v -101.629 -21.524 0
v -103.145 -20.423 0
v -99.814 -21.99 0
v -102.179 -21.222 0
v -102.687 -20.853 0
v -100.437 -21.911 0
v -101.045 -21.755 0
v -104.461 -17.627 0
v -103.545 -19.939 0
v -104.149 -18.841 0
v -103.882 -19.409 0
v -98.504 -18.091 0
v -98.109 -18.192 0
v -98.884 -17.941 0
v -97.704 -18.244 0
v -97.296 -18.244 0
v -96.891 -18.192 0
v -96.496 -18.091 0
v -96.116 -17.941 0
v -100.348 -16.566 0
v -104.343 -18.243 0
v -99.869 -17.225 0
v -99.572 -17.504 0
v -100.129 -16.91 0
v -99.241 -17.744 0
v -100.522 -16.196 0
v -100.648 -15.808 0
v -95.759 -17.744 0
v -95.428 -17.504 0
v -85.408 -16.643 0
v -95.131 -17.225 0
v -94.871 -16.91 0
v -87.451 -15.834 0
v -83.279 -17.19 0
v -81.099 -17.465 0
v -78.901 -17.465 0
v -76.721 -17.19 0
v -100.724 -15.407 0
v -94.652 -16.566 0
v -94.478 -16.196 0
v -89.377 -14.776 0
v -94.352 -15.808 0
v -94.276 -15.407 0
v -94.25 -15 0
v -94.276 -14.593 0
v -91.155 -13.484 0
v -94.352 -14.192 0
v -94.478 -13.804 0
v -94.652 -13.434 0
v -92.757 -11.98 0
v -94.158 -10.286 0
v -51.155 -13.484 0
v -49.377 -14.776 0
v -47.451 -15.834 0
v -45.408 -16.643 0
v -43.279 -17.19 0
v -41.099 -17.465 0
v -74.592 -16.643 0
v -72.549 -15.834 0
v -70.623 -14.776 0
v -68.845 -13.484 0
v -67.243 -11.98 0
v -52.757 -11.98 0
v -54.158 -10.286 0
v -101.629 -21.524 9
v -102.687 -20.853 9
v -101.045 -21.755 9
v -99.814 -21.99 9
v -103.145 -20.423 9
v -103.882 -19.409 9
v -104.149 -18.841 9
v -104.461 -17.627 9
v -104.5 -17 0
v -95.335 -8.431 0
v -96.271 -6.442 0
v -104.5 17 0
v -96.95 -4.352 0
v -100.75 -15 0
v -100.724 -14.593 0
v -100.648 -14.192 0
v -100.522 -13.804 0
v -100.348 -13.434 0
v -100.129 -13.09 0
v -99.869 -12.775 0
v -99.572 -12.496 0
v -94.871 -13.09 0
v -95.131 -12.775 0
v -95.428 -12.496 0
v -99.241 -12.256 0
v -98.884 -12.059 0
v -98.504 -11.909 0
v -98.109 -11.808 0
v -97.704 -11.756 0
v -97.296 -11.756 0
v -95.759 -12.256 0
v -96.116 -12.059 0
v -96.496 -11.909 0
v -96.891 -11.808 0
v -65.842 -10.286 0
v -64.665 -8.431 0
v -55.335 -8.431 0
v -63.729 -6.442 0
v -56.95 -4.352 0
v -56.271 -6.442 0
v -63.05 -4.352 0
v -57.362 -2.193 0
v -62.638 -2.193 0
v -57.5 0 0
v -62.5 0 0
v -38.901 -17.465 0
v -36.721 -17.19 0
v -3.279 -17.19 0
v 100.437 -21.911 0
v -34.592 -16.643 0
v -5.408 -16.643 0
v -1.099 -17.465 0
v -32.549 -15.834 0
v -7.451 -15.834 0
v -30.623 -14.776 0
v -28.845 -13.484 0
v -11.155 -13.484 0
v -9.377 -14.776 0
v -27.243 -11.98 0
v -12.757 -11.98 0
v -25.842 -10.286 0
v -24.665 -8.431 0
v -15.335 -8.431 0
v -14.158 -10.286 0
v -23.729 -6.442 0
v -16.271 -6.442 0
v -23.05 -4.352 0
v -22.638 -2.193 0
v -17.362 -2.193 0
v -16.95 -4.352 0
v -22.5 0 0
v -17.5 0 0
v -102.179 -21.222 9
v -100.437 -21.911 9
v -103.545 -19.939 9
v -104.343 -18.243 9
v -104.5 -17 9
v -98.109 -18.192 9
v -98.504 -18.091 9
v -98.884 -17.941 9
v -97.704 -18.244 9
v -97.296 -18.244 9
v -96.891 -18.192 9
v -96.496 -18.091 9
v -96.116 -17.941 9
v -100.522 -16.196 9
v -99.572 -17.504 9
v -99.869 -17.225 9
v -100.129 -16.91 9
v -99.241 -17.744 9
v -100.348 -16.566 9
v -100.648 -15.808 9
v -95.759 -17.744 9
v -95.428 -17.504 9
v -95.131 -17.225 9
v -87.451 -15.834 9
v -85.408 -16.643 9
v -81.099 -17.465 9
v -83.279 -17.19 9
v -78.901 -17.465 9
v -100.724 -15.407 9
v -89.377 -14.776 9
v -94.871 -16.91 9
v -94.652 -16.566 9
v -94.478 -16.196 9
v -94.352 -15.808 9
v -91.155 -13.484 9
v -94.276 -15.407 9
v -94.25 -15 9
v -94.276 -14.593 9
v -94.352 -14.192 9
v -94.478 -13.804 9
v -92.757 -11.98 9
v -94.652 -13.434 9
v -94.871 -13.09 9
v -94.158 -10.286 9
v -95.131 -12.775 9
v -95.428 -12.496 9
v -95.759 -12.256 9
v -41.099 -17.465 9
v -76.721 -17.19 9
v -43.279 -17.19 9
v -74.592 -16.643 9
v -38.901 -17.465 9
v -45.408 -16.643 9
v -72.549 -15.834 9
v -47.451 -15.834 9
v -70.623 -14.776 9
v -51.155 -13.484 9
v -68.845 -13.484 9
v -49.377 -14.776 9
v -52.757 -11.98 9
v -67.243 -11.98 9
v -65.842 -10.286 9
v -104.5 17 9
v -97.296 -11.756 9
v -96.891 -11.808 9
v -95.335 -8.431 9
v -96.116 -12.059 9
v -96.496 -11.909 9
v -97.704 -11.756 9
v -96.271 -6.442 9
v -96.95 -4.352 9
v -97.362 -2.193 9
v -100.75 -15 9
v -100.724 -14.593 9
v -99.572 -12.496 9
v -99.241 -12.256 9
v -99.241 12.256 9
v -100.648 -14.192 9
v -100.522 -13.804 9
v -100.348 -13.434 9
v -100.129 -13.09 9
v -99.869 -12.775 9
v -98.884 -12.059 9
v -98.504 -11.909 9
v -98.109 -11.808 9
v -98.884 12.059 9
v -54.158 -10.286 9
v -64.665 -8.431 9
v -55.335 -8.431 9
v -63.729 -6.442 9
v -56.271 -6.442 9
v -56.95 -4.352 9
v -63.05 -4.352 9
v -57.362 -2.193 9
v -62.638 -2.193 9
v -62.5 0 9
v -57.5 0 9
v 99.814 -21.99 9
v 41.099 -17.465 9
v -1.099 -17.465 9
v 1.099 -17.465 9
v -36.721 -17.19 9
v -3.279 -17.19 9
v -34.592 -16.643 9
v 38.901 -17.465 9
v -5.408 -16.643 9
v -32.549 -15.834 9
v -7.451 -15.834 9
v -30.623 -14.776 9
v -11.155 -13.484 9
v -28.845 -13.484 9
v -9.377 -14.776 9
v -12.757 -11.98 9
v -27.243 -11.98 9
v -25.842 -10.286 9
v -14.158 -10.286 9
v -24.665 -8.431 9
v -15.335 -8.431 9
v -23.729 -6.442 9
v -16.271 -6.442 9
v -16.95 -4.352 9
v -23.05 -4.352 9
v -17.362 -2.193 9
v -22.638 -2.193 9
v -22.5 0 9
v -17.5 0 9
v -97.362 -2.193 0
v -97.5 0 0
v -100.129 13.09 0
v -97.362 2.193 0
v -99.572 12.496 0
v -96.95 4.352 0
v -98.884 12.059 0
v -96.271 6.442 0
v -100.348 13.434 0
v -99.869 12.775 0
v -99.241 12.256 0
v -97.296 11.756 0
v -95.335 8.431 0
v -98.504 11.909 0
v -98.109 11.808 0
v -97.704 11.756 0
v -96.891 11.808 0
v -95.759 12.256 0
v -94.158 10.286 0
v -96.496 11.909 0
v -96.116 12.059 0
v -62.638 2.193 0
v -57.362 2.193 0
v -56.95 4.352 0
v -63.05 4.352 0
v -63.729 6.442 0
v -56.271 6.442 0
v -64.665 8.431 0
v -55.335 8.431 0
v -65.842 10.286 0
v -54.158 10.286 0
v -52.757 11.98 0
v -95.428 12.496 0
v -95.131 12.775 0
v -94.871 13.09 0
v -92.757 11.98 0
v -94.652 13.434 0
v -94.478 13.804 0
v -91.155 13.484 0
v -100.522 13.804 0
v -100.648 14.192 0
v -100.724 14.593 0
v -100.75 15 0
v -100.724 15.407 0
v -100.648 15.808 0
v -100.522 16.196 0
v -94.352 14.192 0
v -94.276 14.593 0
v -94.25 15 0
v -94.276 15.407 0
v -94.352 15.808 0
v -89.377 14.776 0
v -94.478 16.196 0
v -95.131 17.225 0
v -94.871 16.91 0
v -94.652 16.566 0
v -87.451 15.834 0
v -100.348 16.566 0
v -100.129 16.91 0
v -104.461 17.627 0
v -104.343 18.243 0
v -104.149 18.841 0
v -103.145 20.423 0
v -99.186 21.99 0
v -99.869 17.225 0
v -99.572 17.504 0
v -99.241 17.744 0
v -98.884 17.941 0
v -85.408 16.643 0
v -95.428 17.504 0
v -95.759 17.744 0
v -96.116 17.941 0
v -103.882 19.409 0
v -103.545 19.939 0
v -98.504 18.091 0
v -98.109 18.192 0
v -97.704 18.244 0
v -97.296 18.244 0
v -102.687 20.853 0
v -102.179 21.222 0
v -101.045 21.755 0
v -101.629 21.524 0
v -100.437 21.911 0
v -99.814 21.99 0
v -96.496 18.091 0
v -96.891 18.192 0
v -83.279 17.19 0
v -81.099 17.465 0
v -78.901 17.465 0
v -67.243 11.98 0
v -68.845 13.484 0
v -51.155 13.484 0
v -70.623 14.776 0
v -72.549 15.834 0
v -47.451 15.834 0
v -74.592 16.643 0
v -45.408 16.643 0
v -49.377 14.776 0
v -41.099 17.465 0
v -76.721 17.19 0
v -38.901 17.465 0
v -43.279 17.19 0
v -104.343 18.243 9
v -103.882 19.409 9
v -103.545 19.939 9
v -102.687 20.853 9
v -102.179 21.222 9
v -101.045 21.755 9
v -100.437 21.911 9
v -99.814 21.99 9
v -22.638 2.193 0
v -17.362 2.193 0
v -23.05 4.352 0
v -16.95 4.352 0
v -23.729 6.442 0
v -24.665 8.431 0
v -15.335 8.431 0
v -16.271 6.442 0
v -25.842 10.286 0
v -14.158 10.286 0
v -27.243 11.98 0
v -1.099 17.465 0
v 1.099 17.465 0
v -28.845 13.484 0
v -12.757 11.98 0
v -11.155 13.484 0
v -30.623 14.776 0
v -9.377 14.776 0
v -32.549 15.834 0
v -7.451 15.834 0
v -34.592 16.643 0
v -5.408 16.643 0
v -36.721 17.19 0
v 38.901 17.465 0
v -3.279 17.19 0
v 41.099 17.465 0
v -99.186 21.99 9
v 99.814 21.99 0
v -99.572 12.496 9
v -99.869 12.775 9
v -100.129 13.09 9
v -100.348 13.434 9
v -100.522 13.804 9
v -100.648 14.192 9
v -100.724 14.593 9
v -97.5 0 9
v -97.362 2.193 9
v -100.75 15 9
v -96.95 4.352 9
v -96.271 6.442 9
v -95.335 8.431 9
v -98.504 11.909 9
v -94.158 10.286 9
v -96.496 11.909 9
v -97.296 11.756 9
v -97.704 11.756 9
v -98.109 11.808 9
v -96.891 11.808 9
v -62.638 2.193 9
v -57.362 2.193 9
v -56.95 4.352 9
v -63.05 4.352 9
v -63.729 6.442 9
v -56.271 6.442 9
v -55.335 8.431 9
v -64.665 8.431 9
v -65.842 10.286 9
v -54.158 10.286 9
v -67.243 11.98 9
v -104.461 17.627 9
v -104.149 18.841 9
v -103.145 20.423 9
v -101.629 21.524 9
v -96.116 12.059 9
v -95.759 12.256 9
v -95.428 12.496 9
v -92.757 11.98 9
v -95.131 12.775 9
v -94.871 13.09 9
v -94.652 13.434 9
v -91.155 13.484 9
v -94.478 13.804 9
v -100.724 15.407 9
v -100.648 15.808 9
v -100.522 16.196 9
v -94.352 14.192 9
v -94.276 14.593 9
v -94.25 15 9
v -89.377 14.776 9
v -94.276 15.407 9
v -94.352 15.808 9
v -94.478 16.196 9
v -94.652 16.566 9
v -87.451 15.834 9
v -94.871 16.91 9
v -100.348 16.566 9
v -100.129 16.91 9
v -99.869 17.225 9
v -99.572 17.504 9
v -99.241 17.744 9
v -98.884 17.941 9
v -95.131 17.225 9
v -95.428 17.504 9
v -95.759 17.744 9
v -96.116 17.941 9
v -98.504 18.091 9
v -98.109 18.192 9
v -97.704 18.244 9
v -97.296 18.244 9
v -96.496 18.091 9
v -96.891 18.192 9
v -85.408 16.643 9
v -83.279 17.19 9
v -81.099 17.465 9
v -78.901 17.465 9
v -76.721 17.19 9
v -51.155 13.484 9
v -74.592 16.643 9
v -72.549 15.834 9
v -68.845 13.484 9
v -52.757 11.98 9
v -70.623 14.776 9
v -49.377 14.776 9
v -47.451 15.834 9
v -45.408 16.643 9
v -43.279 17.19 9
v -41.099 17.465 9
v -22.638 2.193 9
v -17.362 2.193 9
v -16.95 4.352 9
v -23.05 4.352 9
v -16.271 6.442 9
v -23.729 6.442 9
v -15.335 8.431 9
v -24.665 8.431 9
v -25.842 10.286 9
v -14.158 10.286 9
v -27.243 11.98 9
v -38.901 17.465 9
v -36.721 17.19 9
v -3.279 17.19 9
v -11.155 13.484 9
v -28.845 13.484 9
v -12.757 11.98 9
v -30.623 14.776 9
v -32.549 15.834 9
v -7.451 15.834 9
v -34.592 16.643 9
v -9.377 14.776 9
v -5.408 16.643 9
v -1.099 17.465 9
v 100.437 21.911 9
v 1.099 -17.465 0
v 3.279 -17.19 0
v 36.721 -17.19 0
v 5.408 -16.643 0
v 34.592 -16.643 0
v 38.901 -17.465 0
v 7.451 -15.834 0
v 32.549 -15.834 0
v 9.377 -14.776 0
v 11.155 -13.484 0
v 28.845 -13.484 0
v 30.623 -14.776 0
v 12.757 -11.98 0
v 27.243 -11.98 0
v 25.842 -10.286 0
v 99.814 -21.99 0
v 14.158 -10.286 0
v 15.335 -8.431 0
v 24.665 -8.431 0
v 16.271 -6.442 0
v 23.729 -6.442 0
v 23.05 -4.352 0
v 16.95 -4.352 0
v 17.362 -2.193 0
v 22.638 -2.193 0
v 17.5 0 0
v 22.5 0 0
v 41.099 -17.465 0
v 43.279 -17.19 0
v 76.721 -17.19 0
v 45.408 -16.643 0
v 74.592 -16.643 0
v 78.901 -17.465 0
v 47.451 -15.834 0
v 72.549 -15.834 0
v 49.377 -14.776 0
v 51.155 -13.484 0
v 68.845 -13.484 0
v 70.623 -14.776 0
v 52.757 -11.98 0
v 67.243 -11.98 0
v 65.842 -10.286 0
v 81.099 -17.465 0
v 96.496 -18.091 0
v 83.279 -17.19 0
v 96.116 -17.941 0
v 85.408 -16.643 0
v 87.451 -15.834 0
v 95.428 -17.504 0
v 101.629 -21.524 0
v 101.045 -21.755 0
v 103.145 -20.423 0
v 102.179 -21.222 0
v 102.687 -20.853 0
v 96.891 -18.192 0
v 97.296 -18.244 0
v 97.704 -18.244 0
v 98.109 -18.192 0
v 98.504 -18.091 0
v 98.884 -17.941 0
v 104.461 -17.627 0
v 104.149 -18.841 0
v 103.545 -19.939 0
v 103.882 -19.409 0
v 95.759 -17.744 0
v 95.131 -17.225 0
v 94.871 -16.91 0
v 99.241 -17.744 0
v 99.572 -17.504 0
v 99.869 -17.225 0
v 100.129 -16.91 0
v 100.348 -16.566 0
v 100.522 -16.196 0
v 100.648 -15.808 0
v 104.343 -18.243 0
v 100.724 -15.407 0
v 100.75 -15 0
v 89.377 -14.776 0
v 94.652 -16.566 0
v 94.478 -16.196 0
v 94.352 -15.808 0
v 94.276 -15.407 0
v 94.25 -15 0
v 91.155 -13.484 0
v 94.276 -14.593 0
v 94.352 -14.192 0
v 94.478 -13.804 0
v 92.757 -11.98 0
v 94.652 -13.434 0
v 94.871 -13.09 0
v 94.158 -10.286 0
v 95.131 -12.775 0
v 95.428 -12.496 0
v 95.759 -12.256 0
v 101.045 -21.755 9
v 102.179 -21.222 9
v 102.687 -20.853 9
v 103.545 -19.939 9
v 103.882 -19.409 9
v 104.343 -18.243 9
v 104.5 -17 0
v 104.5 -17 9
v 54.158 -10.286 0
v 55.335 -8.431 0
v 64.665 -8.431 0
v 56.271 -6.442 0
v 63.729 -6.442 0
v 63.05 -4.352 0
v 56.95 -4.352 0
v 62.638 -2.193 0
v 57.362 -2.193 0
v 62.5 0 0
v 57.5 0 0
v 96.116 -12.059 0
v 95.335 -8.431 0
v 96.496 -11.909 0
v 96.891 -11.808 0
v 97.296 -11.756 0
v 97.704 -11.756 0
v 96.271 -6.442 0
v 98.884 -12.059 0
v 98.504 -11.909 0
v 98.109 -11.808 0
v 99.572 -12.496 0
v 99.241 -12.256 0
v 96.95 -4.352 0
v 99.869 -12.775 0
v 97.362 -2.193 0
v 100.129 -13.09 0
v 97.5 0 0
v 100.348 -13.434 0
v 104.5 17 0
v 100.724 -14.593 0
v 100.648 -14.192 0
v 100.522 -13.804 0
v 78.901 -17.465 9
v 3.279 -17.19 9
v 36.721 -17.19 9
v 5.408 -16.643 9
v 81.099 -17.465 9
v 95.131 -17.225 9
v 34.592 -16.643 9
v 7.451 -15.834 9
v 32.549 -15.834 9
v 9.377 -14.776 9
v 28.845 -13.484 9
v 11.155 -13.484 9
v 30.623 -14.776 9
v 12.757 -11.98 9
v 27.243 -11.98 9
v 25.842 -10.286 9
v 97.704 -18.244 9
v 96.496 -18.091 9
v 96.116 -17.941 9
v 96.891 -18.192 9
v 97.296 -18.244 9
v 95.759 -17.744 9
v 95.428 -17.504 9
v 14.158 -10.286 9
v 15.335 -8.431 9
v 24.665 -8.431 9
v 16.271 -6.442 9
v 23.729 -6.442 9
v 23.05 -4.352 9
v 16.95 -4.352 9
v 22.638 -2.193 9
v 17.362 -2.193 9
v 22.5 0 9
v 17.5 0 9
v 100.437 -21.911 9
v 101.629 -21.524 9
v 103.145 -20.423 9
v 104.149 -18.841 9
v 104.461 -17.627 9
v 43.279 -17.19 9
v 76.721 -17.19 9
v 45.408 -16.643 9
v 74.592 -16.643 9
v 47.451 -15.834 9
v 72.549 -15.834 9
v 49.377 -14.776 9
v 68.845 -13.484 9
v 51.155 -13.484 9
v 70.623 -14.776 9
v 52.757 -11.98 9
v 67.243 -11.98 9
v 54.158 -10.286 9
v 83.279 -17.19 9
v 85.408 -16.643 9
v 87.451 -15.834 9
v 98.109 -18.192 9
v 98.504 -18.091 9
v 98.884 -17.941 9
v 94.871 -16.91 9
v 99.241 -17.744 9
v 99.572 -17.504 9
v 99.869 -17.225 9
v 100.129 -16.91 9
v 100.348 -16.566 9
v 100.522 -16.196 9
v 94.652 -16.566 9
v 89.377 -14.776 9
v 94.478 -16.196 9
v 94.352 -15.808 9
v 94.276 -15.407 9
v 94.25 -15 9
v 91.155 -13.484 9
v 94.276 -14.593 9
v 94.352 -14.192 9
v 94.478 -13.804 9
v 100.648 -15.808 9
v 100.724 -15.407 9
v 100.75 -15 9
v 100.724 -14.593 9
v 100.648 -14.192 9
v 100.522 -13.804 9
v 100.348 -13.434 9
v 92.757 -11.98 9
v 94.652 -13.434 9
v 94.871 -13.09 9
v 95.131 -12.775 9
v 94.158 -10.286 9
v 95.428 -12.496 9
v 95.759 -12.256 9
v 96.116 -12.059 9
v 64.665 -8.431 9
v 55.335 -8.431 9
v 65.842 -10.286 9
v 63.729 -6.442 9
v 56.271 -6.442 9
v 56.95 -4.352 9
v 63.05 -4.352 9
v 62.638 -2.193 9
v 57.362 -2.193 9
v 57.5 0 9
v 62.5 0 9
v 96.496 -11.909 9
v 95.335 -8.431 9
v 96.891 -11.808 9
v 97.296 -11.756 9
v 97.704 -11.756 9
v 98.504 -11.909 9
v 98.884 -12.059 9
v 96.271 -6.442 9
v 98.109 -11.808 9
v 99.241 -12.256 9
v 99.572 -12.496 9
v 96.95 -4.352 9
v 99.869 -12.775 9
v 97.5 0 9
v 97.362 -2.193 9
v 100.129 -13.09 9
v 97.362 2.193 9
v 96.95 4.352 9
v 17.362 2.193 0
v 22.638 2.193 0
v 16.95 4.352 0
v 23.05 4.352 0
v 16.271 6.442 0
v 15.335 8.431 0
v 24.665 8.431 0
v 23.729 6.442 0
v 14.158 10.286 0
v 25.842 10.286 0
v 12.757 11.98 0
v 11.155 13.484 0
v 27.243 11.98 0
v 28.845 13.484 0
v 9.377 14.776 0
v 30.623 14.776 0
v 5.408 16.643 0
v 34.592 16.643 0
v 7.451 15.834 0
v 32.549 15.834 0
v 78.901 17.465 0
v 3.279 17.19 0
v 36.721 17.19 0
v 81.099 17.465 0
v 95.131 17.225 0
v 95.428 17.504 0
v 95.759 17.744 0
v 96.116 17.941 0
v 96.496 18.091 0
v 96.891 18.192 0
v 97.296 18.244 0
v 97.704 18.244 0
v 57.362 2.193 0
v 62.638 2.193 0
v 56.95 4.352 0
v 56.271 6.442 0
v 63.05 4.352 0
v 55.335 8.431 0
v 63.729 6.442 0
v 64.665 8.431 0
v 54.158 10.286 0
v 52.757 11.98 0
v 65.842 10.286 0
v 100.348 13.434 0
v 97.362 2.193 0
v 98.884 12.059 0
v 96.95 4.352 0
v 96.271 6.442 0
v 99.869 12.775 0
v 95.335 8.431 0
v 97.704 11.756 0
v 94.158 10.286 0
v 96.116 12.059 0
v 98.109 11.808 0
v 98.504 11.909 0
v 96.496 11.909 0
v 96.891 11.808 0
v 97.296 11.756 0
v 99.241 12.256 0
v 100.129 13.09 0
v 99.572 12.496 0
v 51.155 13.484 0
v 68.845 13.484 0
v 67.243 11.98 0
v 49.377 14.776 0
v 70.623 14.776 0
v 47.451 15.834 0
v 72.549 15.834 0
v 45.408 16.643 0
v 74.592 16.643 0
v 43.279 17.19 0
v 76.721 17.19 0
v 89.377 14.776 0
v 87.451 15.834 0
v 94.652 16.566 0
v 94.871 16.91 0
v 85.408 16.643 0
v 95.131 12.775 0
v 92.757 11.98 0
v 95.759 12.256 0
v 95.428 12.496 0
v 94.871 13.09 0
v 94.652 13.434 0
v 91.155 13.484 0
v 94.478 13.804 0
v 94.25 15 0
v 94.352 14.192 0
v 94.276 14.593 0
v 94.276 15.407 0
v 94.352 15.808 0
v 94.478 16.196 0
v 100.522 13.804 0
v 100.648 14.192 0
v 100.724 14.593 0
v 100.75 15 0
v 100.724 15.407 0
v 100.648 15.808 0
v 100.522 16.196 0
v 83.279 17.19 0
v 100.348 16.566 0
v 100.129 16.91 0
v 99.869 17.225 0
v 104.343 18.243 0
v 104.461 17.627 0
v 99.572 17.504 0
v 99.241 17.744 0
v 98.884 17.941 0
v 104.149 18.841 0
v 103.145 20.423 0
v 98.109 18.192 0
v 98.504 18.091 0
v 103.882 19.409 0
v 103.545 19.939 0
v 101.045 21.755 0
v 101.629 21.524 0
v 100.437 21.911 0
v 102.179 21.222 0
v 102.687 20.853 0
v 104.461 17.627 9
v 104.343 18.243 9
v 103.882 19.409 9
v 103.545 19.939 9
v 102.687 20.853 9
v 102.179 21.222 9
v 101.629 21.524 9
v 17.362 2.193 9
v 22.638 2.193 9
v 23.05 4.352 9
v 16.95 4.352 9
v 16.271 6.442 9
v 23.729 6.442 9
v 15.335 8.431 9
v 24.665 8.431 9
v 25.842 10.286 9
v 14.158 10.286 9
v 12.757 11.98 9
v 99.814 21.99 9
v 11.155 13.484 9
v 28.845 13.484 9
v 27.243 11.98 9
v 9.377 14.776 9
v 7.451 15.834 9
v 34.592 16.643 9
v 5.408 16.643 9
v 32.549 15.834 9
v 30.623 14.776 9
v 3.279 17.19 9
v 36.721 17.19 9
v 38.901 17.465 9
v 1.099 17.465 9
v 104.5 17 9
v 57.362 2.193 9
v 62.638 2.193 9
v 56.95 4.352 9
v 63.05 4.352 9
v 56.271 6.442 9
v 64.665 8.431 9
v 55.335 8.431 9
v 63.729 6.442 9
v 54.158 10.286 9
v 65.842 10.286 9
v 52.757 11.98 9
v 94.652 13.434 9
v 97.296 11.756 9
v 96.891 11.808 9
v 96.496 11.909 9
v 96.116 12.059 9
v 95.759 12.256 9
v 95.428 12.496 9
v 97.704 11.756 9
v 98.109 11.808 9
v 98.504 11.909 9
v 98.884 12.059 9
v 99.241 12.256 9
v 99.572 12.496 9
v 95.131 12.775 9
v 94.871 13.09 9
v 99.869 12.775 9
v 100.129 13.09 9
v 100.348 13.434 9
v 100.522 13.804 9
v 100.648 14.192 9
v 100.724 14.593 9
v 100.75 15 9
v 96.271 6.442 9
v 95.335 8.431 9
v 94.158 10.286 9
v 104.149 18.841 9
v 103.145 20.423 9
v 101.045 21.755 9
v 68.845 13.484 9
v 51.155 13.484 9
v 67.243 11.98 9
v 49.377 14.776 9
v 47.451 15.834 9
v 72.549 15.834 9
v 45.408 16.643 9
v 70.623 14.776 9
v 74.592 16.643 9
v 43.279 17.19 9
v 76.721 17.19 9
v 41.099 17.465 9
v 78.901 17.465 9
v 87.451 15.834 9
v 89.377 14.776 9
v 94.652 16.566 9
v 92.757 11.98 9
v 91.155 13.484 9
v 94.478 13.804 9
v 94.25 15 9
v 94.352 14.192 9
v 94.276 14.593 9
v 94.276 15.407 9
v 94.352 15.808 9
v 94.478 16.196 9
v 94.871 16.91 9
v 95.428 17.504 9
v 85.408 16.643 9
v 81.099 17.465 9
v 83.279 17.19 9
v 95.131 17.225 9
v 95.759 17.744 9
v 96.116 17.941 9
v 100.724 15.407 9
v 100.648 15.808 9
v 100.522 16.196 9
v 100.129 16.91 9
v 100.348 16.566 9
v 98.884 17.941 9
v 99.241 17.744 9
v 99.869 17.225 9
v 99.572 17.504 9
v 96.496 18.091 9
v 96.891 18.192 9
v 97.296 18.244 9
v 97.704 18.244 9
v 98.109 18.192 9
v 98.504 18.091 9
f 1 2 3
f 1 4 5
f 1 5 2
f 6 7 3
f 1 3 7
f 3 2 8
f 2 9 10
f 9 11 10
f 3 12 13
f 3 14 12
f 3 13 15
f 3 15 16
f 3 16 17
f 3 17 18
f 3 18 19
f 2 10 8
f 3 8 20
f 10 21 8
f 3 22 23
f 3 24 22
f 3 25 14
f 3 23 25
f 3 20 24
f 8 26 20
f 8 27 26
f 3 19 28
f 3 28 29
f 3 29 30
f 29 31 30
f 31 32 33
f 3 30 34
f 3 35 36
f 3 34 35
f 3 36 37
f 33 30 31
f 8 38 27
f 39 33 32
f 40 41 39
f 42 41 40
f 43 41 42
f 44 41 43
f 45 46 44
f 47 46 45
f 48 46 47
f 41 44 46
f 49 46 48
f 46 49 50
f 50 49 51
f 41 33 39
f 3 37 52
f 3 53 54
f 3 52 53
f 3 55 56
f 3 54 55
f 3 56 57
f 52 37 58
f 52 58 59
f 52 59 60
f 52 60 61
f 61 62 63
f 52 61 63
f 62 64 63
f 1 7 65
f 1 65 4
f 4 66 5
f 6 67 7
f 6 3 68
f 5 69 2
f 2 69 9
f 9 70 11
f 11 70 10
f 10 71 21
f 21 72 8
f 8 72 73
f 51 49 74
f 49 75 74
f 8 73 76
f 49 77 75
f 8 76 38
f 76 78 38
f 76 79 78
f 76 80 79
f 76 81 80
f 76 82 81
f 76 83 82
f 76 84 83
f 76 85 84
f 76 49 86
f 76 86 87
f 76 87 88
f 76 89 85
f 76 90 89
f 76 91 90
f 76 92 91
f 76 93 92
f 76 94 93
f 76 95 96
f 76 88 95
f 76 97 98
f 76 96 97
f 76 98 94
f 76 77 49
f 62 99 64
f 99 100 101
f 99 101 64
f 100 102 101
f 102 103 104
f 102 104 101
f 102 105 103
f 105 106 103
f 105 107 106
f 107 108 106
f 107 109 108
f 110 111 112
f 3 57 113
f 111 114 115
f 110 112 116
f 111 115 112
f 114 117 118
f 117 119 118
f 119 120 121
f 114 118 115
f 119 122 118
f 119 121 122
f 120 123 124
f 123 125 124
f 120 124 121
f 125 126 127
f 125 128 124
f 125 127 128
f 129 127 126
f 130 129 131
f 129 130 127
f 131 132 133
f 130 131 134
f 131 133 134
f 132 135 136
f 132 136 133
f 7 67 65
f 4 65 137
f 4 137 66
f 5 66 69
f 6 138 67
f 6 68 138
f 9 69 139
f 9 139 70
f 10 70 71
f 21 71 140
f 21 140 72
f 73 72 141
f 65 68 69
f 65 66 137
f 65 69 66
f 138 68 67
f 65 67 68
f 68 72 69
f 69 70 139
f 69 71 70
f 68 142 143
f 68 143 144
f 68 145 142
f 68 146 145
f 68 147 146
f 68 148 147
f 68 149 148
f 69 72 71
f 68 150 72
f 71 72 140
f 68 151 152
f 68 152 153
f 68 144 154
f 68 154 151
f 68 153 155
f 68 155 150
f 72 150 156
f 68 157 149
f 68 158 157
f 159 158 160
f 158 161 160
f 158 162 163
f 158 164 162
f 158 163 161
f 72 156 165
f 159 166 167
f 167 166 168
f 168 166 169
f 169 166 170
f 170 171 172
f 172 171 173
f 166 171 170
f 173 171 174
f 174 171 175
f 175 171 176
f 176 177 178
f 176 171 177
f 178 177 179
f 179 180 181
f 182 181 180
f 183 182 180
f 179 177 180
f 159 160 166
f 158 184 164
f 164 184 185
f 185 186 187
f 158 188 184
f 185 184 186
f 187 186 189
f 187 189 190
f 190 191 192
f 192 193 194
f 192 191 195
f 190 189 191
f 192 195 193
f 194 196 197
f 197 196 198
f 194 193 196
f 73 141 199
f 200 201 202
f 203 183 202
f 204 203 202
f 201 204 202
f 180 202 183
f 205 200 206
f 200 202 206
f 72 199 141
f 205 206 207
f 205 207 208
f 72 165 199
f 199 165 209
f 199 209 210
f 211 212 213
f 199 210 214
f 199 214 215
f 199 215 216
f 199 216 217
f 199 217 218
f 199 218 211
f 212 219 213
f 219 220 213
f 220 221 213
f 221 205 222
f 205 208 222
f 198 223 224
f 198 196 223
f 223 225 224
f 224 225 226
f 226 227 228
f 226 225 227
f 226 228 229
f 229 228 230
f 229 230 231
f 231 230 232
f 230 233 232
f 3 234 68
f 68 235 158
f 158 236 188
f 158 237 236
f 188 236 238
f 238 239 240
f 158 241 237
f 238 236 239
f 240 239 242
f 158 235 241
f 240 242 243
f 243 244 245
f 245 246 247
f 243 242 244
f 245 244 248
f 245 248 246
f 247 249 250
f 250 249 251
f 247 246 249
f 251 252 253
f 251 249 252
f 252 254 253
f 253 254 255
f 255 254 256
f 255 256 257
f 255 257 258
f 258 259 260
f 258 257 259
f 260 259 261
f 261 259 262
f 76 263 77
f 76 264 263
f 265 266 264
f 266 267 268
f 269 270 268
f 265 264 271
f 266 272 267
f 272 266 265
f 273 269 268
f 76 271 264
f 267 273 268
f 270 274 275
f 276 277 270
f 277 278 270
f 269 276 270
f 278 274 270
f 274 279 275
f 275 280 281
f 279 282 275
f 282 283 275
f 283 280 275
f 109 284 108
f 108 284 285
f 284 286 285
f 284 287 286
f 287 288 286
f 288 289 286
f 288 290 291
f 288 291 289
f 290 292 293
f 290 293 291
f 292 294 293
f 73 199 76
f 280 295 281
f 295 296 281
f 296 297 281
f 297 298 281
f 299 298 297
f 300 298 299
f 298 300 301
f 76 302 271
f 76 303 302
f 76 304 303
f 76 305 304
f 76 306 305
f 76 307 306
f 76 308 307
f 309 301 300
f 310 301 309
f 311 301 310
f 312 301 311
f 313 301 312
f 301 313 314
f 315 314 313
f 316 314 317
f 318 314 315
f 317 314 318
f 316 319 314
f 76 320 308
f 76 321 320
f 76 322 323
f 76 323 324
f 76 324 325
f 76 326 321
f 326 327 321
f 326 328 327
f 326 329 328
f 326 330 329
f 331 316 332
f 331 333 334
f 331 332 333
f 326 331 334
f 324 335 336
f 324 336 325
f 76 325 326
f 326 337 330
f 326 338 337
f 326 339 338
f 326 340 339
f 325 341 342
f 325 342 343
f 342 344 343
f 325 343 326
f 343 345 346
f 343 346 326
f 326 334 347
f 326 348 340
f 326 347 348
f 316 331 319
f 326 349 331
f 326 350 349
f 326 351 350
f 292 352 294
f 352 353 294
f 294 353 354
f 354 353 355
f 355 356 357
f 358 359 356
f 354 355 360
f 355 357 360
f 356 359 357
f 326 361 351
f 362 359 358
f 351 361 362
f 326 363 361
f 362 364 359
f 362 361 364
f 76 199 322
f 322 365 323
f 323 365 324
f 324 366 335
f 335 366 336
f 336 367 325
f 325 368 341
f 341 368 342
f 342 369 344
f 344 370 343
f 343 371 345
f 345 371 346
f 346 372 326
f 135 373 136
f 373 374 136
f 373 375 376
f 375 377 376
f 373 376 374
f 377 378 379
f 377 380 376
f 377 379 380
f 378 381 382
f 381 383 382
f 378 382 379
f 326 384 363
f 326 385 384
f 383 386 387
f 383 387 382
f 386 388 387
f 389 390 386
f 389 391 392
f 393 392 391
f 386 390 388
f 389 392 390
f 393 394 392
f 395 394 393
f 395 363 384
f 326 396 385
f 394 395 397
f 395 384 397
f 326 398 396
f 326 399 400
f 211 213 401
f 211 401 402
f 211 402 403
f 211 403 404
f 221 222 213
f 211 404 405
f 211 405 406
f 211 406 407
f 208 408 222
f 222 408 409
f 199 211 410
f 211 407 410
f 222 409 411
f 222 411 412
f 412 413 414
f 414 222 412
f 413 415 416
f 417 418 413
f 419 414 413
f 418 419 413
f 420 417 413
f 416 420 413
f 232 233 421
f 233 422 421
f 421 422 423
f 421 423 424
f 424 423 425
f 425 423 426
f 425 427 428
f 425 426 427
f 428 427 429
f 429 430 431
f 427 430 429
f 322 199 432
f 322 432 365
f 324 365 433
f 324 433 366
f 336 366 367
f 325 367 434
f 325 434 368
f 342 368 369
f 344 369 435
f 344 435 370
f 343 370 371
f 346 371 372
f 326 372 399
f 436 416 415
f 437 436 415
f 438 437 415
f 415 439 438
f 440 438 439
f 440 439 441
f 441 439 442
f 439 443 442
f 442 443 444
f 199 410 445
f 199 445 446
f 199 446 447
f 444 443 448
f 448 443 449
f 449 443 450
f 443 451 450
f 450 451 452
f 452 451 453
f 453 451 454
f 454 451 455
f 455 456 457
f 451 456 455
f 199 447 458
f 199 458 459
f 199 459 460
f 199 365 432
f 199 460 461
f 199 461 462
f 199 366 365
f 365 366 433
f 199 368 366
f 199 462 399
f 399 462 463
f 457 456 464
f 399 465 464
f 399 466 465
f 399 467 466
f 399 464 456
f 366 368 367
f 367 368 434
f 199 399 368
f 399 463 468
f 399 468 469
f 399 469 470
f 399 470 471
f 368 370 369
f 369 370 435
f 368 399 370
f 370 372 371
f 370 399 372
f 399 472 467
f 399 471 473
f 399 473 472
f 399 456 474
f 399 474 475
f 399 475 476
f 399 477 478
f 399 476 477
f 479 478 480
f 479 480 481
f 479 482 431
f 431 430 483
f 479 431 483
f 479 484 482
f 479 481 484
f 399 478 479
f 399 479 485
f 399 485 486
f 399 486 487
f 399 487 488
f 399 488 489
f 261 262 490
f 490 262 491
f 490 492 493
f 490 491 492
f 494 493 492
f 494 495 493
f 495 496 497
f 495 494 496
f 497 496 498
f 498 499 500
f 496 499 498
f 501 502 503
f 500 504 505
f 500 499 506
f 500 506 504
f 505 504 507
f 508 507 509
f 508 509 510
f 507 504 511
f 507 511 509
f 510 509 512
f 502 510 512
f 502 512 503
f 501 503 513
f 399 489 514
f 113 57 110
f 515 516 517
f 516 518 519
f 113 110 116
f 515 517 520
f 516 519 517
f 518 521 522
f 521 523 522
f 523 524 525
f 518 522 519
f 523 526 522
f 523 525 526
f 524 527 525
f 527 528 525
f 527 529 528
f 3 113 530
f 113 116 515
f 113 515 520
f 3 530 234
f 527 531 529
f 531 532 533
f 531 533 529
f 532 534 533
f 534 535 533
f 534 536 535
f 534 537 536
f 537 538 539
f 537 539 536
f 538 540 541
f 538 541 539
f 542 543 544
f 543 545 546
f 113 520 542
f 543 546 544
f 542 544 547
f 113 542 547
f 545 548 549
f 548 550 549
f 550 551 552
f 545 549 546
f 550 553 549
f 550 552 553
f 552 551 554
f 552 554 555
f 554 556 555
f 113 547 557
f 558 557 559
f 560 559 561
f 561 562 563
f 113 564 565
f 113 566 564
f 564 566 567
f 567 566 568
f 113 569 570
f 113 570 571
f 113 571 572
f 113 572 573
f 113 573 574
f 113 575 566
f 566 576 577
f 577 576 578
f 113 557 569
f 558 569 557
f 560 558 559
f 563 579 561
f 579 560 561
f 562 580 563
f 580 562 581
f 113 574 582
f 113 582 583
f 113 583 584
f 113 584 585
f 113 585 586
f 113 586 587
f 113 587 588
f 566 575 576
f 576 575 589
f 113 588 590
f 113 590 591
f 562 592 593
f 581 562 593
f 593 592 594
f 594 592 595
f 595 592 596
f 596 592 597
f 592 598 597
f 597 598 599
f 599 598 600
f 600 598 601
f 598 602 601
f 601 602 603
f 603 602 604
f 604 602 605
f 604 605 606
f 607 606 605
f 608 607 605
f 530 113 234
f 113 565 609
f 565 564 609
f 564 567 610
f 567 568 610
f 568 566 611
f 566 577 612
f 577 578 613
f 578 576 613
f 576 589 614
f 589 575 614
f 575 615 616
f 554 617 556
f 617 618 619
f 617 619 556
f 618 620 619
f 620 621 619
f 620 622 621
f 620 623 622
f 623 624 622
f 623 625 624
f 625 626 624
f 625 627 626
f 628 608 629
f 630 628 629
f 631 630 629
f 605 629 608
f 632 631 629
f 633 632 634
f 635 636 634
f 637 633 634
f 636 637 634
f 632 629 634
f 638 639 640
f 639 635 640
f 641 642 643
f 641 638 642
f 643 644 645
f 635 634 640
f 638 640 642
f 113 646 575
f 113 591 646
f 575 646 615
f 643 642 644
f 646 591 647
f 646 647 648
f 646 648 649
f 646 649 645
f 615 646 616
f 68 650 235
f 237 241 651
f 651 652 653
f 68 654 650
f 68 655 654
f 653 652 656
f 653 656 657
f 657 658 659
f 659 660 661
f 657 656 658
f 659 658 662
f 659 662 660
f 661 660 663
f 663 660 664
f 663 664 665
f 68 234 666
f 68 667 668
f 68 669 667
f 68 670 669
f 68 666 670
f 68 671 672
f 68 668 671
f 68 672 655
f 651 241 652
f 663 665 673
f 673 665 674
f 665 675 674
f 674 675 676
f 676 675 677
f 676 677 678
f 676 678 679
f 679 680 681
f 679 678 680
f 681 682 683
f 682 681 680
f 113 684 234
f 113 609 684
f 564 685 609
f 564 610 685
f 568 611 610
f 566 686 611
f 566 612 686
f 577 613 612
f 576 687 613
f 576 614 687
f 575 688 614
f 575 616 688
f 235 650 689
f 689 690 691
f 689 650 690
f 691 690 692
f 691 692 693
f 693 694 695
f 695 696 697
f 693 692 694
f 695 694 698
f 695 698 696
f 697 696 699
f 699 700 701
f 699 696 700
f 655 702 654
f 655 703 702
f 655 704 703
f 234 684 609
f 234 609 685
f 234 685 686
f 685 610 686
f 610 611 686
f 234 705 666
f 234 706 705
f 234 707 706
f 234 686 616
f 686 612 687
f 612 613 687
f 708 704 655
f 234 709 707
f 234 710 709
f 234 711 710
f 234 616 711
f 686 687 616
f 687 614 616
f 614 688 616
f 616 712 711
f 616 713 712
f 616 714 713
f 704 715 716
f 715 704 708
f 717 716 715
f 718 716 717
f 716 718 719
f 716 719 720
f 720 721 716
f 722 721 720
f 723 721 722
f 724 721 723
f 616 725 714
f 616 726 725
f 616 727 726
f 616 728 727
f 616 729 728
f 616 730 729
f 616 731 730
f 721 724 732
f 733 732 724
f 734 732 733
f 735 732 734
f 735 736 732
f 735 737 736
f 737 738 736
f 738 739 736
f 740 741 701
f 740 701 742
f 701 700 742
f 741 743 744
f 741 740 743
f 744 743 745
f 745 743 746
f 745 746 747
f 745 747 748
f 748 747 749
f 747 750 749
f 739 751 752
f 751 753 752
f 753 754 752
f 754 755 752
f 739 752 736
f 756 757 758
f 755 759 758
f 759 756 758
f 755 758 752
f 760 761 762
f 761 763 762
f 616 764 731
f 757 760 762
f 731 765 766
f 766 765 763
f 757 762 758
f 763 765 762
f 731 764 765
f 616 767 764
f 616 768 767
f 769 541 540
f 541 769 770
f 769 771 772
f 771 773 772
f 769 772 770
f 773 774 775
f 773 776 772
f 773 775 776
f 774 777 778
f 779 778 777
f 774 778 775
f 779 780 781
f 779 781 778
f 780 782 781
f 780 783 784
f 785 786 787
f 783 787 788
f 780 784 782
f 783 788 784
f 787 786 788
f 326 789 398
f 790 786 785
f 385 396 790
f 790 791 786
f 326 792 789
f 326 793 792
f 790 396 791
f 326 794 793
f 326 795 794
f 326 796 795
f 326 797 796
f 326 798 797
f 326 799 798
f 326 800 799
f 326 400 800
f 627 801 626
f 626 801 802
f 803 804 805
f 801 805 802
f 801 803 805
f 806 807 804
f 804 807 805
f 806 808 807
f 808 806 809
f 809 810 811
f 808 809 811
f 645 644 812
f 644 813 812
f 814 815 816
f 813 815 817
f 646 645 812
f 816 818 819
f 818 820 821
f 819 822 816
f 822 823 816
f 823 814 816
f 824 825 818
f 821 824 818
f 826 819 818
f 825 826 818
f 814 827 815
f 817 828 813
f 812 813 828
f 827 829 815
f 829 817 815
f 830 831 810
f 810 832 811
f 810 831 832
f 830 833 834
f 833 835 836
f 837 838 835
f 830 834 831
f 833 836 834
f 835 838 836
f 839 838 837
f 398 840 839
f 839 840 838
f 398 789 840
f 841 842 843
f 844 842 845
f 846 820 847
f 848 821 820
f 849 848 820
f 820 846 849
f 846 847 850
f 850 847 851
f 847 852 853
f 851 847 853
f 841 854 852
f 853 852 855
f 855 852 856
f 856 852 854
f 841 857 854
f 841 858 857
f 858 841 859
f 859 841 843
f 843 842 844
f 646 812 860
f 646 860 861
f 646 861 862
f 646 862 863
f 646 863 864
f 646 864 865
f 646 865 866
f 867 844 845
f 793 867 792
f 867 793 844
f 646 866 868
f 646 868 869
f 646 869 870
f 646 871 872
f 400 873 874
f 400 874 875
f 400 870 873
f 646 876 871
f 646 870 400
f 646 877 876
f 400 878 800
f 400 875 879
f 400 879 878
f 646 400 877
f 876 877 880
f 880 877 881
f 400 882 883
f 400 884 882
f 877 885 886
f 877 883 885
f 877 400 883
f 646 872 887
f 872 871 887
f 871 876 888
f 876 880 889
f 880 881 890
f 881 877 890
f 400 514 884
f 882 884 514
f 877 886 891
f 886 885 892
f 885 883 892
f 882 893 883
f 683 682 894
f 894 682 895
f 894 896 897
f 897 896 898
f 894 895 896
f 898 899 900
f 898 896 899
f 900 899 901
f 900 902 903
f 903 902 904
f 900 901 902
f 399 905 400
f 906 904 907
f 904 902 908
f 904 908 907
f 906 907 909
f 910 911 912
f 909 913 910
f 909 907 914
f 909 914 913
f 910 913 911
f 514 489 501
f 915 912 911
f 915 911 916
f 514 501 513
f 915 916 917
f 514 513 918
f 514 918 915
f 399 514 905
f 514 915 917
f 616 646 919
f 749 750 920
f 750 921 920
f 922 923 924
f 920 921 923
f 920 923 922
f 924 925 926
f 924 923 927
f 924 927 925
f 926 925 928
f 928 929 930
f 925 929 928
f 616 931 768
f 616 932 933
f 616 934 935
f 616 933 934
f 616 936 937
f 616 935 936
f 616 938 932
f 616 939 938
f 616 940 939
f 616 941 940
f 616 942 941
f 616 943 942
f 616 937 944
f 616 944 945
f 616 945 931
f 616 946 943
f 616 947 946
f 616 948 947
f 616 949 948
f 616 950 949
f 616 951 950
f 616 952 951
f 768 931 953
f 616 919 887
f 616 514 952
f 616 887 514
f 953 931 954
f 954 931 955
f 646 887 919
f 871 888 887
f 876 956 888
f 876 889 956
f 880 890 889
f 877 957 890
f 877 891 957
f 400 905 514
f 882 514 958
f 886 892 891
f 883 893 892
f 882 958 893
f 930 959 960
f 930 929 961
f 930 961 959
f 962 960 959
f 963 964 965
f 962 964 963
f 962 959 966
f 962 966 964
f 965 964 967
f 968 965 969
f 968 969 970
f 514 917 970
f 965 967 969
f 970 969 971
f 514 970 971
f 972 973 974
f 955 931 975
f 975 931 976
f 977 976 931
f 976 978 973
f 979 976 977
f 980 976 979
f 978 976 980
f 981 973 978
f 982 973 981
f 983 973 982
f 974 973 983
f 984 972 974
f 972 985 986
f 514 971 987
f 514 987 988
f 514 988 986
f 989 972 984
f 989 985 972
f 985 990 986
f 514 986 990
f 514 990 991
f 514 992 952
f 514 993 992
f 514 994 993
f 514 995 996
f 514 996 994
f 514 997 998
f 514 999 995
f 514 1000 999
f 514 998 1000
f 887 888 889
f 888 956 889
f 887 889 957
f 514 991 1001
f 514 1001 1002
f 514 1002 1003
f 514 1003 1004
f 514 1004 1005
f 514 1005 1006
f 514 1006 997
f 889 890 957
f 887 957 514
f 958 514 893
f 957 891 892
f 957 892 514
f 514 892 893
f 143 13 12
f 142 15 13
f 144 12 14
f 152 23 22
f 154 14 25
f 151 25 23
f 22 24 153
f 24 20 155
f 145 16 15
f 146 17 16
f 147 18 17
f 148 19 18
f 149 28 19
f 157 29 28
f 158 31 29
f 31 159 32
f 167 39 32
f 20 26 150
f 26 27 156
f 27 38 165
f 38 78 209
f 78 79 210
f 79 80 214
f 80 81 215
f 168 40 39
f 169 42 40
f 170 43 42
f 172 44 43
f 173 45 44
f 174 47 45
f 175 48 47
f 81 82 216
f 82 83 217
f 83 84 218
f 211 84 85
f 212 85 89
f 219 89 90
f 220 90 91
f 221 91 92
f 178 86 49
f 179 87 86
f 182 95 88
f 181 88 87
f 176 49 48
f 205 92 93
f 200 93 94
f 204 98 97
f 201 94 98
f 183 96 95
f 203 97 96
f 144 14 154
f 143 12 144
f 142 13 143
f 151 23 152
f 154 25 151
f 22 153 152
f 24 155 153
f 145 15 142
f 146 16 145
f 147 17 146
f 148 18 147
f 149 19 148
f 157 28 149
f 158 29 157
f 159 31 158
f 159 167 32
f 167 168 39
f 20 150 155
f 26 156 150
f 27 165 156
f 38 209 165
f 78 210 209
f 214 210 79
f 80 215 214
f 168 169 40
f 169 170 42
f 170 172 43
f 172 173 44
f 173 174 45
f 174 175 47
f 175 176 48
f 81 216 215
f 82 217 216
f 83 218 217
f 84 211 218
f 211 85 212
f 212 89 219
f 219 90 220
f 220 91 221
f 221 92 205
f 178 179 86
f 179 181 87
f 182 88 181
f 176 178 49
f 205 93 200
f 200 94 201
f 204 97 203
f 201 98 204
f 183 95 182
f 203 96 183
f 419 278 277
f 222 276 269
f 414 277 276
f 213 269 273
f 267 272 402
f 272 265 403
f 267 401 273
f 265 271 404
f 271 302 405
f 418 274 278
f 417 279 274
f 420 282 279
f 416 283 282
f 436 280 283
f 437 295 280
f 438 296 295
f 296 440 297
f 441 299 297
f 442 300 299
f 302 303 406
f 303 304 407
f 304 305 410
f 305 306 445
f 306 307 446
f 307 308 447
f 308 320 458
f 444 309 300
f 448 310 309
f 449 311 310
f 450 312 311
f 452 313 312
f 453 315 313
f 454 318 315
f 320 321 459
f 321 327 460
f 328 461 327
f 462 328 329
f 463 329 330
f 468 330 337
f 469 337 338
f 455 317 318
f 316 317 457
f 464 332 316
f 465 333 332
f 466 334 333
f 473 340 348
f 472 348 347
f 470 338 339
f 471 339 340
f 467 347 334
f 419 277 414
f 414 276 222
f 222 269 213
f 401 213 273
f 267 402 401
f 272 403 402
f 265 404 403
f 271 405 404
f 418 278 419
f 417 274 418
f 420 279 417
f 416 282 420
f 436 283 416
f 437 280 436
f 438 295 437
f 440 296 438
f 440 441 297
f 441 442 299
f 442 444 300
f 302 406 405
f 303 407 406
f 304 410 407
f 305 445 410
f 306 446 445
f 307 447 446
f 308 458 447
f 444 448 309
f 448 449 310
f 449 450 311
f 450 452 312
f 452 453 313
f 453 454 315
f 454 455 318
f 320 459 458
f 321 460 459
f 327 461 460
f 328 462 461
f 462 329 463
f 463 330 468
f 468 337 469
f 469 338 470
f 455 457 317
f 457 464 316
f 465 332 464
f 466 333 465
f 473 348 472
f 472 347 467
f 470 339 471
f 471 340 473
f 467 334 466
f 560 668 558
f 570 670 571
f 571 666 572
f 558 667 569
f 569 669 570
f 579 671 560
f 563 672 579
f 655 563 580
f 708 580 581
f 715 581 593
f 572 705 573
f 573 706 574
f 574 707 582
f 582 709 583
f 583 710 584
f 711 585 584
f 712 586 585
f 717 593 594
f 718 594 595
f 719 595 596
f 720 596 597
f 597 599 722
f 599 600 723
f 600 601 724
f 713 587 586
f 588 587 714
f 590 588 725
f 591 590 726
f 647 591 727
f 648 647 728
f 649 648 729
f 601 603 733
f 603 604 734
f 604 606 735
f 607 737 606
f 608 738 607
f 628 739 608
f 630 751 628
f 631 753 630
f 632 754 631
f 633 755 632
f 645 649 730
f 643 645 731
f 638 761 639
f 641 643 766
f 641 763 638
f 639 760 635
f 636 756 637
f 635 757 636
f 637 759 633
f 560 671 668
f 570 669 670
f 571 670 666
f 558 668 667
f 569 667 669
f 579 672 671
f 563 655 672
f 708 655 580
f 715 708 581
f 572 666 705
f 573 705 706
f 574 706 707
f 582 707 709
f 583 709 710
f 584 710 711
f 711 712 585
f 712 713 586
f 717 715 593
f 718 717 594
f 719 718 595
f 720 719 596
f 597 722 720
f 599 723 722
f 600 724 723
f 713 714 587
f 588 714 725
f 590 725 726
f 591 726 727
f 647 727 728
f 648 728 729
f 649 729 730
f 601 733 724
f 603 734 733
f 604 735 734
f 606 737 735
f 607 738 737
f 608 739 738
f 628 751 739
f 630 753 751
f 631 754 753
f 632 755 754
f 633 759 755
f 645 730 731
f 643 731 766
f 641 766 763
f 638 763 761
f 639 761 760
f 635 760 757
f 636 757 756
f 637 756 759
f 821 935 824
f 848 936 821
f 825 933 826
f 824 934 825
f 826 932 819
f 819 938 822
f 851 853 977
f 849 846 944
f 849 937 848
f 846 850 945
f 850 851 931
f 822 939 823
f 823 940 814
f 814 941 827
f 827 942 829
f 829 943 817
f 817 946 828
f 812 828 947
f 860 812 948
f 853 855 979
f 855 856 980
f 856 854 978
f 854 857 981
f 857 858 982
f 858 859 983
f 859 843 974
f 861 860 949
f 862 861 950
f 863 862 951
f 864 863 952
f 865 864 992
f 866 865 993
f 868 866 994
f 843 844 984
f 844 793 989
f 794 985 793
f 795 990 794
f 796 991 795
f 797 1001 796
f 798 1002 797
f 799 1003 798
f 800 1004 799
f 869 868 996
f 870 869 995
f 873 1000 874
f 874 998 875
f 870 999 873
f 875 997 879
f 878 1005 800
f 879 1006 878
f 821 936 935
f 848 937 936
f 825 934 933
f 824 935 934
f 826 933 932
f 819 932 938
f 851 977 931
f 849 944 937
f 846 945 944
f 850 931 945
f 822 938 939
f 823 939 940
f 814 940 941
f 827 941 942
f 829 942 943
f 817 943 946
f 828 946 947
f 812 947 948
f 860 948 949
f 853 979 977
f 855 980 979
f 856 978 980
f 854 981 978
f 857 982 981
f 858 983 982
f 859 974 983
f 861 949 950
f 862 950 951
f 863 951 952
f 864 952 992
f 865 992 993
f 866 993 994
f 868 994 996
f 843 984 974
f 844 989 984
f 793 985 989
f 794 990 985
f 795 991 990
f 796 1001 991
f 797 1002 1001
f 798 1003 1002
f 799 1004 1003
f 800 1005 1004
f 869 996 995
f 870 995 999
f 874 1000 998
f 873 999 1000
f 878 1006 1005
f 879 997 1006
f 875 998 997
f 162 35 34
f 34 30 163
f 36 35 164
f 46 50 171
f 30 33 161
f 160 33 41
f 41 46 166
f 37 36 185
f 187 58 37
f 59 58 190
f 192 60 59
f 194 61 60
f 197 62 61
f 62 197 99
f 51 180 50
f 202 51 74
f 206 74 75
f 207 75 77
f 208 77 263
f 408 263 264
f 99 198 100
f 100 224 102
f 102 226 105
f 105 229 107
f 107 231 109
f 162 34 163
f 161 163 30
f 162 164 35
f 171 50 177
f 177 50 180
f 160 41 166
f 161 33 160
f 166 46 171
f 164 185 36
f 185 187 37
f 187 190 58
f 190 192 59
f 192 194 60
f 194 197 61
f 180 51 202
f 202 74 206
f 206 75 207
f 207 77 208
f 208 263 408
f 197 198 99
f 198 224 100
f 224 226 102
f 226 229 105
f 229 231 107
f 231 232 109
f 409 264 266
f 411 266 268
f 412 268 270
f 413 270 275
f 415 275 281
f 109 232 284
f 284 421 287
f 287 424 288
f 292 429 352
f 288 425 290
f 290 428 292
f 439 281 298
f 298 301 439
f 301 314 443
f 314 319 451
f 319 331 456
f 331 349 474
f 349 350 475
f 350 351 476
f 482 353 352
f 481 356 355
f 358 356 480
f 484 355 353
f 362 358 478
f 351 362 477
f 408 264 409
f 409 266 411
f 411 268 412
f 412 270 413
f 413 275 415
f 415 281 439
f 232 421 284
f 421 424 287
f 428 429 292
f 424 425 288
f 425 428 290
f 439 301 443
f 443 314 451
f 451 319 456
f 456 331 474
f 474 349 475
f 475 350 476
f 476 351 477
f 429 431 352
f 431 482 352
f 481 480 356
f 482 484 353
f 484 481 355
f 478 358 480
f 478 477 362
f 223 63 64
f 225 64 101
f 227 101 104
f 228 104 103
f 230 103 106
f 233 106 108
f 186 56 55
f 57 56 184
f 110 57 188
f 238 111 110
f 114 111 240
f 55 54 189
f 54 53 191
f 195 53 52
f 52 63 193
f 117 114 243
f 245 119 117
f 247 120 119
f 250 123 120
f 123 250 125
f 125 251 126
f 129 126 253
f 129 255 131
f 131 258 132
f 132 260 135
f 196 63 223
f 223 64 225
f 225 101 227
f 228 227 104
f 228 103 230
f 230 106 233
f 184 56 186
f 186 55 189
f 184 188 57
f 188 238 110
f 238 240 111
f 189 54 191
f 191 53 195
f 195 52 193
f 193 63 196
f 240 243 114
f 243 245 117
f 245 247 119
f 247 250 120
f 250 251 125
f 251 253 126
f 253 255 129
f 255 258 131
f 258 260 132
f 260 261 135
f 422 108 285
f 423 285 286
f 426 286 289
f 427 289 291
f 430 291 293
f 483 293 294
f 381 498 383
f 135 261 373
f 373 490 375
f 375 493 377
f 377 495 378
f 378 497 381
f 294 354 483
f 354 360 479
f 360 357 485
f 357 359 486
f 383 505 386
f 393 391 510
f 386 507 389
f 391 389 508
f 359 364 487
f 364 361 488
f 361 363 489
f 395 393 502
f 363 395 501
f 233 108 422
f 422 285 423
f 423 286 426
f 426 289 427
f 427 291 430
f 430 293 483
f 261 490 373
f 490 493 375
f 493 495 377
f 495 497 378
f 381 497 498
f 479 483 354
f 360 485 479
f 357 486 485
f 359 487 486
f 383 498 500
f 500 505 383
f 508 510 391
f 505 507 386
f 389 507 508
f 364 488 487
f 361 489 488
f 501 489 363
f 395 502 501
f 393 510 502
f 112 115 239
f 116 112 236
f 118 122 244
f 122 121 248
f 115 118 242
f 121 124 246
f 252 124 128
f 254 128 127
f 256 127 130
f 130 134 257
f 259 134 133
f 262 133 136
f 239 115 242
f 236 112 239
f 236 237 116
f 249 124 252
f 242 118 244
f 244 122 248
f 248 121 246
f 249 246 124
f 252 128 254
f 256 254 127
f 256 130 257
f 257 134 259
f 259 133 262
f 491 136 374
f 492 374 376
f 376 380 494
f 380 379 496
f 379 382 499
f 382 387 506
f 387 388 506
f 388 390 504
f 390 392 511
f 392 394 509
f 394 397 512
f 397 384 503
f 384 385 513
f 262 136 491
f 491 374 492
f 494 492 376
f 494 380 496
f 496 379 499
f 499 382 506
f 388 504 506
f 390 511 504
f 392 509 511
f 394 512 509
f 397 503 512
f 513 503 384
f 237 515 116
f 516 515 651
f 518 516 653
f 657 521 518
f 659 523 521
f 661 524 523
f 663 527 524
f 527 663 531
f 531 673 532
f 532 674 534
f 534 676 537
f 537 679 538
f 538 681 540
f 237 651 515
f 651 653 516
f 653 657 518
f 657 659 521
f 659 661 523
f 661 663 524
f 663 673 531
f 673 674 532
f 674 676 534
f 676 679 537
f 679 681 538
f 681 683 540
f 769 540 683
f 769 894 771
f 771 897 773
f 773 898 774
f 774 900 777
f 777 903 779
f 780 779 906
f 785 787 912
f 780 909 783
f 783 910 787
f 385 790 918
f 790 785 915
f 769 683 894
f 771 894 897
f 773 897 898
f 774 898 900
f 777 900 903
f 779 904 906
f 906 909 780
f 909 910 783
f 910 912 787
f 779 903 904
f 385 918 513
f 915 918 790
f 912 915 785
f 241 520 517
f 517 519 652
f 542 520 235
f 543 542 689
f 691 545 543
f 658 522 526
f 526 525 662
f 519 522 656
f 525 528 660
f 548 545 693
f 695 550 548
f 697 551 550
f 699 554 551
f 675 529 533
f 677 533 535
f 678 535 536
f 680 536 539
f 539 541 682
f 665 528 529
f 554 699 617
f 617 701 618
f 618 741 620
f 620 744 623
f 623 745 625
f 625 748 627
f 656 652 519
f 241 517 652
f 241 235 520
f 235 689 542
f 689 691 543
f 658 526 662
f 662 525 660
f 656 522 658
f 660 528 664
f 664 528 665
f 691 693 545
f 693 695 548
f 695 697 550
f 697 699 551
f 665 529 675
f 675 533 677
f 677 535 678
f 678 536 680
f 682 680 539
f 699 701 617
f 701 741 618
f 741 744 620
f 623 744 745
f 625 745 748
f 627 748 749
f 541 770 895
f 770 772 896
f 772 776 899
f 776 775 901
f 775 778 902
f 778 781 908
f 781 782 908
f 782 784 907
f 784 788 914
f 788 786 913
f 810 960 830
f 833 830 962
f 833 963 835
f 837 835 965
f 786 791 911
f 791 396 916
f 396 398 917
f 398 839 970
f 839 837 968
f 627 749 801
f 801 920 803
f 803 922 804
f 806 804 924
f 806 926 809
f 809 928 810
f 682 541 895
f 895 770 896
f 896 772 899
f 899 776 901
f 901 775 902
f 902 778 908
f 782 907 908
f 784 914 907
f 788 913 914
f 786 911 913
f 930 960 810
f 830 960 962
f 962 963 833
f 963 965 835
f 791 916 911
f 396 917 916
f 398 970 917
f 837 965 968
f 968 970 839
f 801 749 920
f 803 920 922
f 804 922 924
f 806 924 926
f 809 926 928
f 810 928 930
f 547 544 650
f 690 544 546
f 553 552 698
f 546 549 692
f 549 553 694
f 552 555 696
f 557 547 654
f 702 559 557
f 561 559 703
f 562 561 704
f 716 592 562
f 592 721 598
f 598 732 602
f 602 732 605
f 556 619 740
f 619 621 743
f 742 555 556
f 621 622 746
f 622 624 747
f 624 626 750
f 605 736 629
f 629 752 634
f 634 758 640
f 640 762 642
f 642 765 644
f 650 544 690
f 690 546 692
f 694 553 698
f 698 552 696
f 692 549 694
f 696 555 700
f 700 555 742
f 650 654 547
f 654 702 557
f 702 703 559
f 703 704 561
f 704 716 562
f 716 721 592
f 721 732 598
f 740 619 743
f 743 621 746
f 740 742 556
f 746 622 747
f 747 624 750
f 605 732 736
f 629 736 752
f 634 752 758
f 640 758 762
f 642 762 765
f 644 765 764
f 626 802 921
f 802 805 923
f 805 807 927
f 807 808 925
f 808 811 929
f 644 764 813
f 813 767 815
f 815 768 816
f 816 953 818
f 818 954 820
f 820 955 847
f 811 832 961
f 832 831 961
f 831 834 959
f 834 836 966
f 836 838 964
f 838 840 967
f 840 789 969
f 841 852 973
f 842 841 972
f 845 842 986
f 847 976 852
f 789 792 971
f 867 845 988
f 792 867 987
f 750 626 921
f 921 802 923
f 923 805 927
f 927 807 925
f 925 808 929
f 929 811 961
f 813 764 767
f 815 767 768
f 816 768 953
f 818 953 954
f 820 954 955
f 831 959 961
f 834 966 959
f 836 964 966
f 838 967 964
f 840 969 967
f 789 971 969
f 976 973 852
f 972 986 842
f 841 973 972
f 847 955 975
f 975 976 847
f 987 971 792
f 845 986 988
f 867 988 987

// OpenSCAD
$fn = 50;

difference() {
	union() {
		hull() {
			translate(v = [-99.5, 17.0, 0]) {
				cylinder(h = 9, r = 5);
			}
			translate(v = [99.5, 17.0, 0]) {
				cylinder(h = 9, r = 5);
			}
			translate(v = [-99.5, -17.0, 0]) {
				cylinder(h = 9, r = 5);
			}
			translate(v = [99.5, -17.0, 0]) {
				cylinder(h = 9, r = 5);
			}
		}
	}
	union() {
		translate(v = [-97.5, -15.0, -100.0]) {
			cylinder(h = 200, r = 3.25);
		}
		translate(v = [-97.5, 15.0, -100.0]) {
			cylinder(h = 200, r = 3.25);
		}
		translate(v = [97.5, -15.0, -100.0]) {
			cylinder(h = 200, r = 3.25);
		}
		translate(v = [97.5, 15.0, -100.0]) {
			cylinder(h = 200, r = 3.25);
		}
		translate(v = [-97.5, -15.0, -100.0]) {
			cylinder(h = 200, r = 1.8);
		}
		translate(v = [-97.5, 15.0, -100.0]) {
			cylinder(h = 200, r = 1.8);
		}
		translate(v = [97.5, -15.0, -100.0]) {
			cylinder(h = 200, r = 1.8);
		}
		translate(v = [97.5, 15.0, -100.0]) {
			cylinder(h = 200, r = 1.8);
		}
		translate(v = [-80.0, 0, 0.0]) {
			cylinder(h = 9, r = 17.5);
		}
		translate(v = [-40.0, 0, 0.0]) {
			cylinder(h = 9, r = 17.5);
		}
		cylinder(h = 9, r = 17.5);
		translate(v = [40.0, 0, 0.0]) {
			cylinder(h = 9, r = 17.5);
		}
		translate(v = [80.0, 0, 0.0]) {
			cylinder(h = 9, r = 17.5);
		}
	}
}
